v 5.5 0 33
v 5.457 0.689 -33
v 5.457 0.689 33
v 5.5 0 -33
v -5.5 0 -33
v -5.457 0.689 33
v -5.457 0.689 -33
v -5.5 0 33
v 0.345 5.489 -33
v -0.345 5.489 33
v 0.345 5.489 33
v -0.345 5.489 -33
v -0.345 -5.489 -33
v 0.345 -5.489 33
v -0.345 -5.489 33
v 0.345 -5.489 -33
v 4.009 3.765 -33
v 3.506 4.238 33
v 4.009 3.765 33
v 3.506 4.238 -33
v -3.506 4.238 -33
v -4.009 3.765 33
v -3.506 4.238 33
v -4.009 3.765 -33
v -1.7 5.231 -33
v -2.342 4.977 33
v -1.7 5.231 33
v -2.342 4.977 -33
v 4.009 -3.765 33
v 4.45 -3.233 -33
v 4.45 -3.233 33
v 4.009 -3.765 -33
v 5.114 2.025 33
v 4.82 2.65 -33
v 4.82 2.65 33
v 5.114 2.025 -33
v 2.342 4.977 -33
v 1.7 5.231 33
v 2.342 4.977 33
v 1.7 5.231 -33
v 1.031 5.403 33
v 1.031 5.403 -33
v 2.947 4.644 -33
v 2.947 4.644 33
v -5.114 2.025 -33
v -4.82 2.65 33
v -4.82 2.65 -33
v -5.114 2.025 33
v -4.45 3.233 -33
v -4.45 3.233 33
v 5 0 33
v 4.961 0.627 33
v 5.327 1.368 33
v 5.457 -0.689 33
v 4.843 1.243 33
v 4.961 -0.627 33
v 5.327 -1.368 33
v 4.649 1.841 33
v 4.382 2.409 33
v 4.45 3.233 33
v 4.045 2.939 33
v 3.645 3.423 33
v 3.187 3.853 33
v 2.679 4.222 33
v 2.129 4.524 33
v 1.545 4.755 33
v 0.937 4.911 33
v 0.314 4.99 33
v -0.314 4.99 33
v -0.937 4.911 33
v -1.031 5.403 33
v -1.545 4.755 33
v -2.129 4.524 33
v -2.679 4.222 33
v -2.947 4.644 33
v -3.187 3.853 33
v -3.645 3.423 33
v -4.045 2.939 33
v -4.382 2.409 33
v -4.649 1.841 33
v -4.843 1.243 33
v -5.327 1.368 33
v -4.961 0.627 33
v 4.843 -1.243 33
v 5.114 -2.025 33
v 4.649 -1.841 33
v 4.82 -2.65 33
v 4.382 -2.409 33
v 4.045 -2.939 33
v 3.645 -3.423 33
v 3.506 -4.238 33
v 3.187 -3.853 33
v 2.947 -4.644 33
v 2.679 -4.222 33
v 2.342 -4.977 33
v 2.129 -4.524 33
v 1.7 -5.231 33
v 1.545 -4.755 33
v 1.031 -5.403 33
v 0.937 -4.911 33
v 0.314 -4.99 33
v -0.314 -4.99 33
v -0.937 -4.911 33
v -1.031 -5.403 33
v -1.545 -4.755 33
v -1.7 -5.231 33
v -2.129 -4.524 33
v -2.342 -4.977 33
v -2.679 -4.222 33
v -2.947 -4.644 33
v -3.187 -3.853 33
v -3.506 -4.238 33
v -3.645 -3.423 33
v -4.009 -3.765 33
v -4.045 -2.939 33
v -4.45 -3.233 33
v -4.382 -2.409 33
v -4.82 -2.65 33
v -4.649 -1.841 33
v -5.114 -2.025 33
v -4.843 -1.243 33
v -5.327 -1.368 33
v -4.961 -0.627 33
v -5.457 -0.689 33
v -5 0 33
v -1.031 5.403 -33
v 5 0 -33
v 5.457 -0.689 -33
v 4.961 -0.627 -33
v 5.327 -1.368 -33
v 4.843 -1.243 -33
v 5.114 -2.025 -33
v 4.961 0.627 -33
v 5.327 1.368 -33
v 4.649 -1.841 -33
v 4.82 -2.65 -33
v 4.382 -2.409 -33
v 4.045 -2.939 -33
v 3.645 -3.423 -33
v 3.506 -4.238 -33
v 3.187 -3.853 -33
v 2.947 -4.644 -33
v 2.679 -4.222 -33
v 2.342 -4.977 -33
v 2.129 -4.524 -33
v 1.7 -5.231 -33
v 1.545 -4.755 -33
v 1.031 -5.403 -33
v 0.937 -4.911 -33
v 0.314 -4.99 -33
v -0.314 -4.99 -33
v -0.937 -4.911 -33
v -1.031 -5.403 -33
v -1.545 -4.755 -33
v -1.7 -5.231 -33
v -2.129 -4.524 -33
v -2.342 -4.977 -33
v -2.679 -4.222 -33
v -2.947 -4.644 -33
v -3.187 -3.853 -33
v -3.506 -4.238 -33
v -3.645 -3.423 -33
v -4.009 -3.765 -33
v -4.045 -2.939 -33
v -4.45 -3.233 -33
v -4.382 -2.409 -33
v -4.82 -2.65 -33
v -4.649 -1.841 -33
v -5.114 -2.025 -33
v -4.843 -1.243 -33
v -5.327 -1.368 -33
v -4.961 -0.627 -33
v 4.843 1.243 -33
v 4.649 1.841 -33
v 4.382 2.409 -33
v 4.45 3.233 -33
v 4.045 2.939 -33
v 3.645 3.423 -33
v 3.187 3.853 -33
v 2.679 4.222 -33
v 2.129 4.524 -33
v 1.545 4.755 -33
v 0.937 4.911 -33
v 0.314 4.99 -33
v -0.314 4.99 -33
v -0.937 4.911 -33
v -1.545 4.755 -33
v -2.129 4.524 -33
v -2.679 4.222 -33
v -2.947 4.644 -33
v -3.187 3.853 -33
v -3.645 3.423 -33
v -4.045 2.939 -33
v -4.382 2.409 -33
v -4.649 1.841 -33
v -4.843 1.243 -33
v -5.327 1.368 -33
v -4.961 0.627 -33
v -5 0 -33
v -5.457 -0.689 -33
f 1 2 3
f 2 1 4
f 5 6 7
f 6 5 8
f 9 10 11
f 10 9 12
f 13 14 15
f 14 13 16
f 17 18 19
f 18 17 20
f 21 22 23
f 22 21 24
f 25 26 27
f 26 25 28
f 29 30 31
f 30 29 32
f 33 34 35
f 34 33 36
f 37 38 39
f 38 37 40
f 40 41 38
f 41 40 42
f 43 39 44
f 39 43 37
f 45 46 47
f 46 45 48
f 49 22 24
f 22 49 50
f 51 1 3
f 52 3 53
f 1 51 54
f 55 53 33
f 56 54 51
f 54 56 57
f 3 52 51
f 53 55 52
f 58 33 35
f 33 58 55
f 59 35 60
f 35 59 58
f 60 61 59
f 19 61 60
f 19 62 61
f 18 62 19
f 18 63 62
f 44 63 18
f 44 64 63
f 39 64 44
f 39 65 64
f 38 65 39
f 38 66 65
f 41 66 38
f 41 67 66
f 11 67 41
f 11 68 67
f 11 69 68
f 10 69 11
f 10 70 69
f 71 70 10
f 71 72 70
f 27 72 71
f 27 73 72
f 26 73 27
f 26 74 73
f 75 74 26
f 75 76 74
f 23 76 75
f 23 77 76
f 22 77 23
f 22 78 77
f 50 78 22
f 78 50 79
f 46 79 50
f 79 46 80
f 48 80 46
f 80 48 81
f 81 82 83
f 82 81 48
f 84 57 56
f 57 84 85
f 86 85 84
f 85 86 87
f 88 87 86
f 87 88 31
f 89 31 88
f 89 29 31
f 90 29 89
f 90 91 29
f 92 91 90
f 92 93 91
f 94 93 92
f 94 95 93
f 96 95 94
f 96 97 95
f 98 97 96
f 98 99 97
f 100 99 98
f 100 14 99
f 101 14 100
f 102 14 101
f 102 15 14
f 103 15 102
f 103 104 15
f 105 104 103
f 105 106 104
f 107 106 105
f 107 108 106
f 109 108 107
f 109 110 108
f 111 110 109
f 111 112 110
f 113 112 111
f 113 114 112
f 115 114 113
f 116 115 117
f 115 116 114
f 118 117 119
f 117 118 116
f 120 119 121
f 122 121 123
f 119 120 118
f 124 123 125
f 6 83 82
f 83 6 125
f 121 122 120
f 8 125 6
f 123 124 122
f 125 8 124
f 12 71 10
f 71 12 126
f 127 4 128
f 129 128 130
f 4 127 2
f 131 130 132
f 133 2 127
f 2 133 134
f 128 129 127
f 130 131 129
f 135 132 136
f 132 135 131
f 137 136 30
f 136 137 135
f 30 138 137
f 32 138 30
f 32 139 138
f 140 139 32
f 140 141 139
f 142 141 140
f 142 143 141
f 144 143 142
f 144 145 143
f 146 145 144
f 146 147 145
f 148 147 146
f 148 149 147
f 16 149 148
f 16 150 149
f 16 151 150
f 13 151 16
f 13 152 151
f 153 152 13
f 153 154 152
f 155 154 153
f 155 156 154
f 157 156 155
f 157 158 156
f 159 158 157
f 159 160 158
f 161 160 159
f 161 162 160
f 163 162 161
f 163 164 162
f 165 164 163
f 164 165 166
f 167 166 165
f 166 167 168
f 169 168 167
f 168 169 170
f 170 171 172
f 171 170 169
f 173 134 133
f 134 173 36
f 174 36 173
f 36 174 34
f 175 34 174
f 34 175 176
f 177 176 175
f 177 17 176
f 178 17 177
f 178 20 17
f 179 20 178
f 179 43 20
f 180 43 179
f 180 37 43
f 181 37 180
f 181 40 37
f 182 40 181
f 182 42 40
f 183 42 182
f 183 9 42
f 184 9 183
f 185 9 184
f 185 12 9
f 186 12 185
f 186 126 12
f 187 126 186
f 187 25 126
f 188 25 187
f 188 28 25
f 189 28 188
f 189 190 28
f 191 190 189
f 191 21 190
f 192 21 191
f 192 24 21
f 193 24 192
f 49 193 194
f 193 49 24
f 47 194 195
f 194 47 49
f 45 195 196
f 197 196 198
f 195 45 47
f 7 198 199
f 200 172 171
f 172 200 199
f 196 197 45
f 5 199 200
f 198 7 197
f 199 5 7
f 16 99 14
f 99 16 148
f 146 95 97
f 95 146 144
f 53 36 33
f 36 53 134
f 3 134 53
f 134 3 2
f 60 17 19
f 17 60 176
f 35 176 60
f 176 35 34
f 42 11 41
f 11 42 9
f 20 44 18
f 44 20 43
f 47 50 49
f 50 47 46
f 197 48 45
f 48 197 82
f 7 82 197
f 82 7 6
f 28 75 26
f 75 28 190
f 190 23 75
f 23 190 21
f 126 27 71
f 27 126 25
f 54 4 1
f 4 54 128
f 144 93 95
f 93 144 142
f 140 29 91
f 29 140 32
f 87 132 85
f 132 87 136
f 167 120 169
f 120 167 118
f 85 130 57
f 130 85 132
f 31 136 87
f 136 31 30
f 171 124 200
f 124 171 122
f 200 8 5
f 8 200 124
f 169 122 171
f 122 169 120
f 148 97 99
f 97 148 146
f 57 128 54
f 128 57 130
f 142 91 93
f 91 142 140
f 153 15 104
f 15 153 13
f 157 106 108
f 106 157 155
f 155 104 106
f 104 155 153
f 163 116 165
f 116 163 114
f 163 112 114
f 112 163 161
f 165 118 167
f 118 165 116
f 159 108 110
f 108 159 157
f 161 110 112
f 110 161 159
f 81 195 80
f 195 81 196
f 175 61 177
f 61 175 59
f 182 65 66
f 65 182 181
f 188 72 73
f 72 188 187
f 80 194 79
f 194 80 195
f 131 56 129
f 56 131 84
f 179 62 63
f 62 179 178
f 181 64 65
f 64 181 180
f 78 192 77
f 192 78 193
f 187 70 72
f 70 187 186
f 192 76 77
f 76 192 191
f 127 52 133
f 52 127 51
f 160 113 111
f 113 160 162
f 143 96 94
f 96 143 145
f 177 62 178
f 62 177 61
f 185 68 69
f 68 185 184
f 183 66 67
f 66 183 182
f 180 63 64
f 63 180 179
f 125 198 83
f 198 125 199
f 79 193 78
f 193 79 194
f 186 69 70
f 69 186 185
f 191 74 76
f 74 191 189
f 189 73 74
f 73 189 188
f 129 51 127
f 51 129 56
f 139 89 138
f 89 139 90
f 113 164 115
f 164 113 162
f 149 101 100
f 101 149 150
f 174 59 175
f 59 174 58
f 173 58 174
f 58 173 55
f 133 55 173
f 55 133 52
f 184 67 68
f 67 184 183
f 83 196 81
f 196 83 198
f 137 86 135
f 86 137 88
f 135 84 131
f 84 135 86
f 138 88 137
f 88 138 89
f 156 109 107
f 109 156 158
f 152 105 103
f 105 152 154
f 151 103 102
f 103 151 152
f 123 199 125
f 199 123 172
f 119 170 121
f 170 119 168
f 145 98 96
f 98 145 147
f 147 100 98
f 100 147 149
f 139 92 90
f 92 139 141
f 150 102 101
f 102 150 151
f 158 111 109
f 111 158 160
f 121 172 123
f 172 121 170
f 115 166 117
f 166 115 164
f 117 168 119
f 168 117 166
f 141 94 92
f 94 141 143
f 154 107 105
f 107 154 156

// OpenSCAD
$fn = 50;


difference() {
	union() {
		translate(v = [0, 0, -33.0000000000]) {
			cylinder(h = 66, r = 5.5000000000);
		}
	}
	union() {
		translate(v = [0, 0, -100.0000000000]) {
			cylinder(h = 200, r = 5);
		}
	}
}
